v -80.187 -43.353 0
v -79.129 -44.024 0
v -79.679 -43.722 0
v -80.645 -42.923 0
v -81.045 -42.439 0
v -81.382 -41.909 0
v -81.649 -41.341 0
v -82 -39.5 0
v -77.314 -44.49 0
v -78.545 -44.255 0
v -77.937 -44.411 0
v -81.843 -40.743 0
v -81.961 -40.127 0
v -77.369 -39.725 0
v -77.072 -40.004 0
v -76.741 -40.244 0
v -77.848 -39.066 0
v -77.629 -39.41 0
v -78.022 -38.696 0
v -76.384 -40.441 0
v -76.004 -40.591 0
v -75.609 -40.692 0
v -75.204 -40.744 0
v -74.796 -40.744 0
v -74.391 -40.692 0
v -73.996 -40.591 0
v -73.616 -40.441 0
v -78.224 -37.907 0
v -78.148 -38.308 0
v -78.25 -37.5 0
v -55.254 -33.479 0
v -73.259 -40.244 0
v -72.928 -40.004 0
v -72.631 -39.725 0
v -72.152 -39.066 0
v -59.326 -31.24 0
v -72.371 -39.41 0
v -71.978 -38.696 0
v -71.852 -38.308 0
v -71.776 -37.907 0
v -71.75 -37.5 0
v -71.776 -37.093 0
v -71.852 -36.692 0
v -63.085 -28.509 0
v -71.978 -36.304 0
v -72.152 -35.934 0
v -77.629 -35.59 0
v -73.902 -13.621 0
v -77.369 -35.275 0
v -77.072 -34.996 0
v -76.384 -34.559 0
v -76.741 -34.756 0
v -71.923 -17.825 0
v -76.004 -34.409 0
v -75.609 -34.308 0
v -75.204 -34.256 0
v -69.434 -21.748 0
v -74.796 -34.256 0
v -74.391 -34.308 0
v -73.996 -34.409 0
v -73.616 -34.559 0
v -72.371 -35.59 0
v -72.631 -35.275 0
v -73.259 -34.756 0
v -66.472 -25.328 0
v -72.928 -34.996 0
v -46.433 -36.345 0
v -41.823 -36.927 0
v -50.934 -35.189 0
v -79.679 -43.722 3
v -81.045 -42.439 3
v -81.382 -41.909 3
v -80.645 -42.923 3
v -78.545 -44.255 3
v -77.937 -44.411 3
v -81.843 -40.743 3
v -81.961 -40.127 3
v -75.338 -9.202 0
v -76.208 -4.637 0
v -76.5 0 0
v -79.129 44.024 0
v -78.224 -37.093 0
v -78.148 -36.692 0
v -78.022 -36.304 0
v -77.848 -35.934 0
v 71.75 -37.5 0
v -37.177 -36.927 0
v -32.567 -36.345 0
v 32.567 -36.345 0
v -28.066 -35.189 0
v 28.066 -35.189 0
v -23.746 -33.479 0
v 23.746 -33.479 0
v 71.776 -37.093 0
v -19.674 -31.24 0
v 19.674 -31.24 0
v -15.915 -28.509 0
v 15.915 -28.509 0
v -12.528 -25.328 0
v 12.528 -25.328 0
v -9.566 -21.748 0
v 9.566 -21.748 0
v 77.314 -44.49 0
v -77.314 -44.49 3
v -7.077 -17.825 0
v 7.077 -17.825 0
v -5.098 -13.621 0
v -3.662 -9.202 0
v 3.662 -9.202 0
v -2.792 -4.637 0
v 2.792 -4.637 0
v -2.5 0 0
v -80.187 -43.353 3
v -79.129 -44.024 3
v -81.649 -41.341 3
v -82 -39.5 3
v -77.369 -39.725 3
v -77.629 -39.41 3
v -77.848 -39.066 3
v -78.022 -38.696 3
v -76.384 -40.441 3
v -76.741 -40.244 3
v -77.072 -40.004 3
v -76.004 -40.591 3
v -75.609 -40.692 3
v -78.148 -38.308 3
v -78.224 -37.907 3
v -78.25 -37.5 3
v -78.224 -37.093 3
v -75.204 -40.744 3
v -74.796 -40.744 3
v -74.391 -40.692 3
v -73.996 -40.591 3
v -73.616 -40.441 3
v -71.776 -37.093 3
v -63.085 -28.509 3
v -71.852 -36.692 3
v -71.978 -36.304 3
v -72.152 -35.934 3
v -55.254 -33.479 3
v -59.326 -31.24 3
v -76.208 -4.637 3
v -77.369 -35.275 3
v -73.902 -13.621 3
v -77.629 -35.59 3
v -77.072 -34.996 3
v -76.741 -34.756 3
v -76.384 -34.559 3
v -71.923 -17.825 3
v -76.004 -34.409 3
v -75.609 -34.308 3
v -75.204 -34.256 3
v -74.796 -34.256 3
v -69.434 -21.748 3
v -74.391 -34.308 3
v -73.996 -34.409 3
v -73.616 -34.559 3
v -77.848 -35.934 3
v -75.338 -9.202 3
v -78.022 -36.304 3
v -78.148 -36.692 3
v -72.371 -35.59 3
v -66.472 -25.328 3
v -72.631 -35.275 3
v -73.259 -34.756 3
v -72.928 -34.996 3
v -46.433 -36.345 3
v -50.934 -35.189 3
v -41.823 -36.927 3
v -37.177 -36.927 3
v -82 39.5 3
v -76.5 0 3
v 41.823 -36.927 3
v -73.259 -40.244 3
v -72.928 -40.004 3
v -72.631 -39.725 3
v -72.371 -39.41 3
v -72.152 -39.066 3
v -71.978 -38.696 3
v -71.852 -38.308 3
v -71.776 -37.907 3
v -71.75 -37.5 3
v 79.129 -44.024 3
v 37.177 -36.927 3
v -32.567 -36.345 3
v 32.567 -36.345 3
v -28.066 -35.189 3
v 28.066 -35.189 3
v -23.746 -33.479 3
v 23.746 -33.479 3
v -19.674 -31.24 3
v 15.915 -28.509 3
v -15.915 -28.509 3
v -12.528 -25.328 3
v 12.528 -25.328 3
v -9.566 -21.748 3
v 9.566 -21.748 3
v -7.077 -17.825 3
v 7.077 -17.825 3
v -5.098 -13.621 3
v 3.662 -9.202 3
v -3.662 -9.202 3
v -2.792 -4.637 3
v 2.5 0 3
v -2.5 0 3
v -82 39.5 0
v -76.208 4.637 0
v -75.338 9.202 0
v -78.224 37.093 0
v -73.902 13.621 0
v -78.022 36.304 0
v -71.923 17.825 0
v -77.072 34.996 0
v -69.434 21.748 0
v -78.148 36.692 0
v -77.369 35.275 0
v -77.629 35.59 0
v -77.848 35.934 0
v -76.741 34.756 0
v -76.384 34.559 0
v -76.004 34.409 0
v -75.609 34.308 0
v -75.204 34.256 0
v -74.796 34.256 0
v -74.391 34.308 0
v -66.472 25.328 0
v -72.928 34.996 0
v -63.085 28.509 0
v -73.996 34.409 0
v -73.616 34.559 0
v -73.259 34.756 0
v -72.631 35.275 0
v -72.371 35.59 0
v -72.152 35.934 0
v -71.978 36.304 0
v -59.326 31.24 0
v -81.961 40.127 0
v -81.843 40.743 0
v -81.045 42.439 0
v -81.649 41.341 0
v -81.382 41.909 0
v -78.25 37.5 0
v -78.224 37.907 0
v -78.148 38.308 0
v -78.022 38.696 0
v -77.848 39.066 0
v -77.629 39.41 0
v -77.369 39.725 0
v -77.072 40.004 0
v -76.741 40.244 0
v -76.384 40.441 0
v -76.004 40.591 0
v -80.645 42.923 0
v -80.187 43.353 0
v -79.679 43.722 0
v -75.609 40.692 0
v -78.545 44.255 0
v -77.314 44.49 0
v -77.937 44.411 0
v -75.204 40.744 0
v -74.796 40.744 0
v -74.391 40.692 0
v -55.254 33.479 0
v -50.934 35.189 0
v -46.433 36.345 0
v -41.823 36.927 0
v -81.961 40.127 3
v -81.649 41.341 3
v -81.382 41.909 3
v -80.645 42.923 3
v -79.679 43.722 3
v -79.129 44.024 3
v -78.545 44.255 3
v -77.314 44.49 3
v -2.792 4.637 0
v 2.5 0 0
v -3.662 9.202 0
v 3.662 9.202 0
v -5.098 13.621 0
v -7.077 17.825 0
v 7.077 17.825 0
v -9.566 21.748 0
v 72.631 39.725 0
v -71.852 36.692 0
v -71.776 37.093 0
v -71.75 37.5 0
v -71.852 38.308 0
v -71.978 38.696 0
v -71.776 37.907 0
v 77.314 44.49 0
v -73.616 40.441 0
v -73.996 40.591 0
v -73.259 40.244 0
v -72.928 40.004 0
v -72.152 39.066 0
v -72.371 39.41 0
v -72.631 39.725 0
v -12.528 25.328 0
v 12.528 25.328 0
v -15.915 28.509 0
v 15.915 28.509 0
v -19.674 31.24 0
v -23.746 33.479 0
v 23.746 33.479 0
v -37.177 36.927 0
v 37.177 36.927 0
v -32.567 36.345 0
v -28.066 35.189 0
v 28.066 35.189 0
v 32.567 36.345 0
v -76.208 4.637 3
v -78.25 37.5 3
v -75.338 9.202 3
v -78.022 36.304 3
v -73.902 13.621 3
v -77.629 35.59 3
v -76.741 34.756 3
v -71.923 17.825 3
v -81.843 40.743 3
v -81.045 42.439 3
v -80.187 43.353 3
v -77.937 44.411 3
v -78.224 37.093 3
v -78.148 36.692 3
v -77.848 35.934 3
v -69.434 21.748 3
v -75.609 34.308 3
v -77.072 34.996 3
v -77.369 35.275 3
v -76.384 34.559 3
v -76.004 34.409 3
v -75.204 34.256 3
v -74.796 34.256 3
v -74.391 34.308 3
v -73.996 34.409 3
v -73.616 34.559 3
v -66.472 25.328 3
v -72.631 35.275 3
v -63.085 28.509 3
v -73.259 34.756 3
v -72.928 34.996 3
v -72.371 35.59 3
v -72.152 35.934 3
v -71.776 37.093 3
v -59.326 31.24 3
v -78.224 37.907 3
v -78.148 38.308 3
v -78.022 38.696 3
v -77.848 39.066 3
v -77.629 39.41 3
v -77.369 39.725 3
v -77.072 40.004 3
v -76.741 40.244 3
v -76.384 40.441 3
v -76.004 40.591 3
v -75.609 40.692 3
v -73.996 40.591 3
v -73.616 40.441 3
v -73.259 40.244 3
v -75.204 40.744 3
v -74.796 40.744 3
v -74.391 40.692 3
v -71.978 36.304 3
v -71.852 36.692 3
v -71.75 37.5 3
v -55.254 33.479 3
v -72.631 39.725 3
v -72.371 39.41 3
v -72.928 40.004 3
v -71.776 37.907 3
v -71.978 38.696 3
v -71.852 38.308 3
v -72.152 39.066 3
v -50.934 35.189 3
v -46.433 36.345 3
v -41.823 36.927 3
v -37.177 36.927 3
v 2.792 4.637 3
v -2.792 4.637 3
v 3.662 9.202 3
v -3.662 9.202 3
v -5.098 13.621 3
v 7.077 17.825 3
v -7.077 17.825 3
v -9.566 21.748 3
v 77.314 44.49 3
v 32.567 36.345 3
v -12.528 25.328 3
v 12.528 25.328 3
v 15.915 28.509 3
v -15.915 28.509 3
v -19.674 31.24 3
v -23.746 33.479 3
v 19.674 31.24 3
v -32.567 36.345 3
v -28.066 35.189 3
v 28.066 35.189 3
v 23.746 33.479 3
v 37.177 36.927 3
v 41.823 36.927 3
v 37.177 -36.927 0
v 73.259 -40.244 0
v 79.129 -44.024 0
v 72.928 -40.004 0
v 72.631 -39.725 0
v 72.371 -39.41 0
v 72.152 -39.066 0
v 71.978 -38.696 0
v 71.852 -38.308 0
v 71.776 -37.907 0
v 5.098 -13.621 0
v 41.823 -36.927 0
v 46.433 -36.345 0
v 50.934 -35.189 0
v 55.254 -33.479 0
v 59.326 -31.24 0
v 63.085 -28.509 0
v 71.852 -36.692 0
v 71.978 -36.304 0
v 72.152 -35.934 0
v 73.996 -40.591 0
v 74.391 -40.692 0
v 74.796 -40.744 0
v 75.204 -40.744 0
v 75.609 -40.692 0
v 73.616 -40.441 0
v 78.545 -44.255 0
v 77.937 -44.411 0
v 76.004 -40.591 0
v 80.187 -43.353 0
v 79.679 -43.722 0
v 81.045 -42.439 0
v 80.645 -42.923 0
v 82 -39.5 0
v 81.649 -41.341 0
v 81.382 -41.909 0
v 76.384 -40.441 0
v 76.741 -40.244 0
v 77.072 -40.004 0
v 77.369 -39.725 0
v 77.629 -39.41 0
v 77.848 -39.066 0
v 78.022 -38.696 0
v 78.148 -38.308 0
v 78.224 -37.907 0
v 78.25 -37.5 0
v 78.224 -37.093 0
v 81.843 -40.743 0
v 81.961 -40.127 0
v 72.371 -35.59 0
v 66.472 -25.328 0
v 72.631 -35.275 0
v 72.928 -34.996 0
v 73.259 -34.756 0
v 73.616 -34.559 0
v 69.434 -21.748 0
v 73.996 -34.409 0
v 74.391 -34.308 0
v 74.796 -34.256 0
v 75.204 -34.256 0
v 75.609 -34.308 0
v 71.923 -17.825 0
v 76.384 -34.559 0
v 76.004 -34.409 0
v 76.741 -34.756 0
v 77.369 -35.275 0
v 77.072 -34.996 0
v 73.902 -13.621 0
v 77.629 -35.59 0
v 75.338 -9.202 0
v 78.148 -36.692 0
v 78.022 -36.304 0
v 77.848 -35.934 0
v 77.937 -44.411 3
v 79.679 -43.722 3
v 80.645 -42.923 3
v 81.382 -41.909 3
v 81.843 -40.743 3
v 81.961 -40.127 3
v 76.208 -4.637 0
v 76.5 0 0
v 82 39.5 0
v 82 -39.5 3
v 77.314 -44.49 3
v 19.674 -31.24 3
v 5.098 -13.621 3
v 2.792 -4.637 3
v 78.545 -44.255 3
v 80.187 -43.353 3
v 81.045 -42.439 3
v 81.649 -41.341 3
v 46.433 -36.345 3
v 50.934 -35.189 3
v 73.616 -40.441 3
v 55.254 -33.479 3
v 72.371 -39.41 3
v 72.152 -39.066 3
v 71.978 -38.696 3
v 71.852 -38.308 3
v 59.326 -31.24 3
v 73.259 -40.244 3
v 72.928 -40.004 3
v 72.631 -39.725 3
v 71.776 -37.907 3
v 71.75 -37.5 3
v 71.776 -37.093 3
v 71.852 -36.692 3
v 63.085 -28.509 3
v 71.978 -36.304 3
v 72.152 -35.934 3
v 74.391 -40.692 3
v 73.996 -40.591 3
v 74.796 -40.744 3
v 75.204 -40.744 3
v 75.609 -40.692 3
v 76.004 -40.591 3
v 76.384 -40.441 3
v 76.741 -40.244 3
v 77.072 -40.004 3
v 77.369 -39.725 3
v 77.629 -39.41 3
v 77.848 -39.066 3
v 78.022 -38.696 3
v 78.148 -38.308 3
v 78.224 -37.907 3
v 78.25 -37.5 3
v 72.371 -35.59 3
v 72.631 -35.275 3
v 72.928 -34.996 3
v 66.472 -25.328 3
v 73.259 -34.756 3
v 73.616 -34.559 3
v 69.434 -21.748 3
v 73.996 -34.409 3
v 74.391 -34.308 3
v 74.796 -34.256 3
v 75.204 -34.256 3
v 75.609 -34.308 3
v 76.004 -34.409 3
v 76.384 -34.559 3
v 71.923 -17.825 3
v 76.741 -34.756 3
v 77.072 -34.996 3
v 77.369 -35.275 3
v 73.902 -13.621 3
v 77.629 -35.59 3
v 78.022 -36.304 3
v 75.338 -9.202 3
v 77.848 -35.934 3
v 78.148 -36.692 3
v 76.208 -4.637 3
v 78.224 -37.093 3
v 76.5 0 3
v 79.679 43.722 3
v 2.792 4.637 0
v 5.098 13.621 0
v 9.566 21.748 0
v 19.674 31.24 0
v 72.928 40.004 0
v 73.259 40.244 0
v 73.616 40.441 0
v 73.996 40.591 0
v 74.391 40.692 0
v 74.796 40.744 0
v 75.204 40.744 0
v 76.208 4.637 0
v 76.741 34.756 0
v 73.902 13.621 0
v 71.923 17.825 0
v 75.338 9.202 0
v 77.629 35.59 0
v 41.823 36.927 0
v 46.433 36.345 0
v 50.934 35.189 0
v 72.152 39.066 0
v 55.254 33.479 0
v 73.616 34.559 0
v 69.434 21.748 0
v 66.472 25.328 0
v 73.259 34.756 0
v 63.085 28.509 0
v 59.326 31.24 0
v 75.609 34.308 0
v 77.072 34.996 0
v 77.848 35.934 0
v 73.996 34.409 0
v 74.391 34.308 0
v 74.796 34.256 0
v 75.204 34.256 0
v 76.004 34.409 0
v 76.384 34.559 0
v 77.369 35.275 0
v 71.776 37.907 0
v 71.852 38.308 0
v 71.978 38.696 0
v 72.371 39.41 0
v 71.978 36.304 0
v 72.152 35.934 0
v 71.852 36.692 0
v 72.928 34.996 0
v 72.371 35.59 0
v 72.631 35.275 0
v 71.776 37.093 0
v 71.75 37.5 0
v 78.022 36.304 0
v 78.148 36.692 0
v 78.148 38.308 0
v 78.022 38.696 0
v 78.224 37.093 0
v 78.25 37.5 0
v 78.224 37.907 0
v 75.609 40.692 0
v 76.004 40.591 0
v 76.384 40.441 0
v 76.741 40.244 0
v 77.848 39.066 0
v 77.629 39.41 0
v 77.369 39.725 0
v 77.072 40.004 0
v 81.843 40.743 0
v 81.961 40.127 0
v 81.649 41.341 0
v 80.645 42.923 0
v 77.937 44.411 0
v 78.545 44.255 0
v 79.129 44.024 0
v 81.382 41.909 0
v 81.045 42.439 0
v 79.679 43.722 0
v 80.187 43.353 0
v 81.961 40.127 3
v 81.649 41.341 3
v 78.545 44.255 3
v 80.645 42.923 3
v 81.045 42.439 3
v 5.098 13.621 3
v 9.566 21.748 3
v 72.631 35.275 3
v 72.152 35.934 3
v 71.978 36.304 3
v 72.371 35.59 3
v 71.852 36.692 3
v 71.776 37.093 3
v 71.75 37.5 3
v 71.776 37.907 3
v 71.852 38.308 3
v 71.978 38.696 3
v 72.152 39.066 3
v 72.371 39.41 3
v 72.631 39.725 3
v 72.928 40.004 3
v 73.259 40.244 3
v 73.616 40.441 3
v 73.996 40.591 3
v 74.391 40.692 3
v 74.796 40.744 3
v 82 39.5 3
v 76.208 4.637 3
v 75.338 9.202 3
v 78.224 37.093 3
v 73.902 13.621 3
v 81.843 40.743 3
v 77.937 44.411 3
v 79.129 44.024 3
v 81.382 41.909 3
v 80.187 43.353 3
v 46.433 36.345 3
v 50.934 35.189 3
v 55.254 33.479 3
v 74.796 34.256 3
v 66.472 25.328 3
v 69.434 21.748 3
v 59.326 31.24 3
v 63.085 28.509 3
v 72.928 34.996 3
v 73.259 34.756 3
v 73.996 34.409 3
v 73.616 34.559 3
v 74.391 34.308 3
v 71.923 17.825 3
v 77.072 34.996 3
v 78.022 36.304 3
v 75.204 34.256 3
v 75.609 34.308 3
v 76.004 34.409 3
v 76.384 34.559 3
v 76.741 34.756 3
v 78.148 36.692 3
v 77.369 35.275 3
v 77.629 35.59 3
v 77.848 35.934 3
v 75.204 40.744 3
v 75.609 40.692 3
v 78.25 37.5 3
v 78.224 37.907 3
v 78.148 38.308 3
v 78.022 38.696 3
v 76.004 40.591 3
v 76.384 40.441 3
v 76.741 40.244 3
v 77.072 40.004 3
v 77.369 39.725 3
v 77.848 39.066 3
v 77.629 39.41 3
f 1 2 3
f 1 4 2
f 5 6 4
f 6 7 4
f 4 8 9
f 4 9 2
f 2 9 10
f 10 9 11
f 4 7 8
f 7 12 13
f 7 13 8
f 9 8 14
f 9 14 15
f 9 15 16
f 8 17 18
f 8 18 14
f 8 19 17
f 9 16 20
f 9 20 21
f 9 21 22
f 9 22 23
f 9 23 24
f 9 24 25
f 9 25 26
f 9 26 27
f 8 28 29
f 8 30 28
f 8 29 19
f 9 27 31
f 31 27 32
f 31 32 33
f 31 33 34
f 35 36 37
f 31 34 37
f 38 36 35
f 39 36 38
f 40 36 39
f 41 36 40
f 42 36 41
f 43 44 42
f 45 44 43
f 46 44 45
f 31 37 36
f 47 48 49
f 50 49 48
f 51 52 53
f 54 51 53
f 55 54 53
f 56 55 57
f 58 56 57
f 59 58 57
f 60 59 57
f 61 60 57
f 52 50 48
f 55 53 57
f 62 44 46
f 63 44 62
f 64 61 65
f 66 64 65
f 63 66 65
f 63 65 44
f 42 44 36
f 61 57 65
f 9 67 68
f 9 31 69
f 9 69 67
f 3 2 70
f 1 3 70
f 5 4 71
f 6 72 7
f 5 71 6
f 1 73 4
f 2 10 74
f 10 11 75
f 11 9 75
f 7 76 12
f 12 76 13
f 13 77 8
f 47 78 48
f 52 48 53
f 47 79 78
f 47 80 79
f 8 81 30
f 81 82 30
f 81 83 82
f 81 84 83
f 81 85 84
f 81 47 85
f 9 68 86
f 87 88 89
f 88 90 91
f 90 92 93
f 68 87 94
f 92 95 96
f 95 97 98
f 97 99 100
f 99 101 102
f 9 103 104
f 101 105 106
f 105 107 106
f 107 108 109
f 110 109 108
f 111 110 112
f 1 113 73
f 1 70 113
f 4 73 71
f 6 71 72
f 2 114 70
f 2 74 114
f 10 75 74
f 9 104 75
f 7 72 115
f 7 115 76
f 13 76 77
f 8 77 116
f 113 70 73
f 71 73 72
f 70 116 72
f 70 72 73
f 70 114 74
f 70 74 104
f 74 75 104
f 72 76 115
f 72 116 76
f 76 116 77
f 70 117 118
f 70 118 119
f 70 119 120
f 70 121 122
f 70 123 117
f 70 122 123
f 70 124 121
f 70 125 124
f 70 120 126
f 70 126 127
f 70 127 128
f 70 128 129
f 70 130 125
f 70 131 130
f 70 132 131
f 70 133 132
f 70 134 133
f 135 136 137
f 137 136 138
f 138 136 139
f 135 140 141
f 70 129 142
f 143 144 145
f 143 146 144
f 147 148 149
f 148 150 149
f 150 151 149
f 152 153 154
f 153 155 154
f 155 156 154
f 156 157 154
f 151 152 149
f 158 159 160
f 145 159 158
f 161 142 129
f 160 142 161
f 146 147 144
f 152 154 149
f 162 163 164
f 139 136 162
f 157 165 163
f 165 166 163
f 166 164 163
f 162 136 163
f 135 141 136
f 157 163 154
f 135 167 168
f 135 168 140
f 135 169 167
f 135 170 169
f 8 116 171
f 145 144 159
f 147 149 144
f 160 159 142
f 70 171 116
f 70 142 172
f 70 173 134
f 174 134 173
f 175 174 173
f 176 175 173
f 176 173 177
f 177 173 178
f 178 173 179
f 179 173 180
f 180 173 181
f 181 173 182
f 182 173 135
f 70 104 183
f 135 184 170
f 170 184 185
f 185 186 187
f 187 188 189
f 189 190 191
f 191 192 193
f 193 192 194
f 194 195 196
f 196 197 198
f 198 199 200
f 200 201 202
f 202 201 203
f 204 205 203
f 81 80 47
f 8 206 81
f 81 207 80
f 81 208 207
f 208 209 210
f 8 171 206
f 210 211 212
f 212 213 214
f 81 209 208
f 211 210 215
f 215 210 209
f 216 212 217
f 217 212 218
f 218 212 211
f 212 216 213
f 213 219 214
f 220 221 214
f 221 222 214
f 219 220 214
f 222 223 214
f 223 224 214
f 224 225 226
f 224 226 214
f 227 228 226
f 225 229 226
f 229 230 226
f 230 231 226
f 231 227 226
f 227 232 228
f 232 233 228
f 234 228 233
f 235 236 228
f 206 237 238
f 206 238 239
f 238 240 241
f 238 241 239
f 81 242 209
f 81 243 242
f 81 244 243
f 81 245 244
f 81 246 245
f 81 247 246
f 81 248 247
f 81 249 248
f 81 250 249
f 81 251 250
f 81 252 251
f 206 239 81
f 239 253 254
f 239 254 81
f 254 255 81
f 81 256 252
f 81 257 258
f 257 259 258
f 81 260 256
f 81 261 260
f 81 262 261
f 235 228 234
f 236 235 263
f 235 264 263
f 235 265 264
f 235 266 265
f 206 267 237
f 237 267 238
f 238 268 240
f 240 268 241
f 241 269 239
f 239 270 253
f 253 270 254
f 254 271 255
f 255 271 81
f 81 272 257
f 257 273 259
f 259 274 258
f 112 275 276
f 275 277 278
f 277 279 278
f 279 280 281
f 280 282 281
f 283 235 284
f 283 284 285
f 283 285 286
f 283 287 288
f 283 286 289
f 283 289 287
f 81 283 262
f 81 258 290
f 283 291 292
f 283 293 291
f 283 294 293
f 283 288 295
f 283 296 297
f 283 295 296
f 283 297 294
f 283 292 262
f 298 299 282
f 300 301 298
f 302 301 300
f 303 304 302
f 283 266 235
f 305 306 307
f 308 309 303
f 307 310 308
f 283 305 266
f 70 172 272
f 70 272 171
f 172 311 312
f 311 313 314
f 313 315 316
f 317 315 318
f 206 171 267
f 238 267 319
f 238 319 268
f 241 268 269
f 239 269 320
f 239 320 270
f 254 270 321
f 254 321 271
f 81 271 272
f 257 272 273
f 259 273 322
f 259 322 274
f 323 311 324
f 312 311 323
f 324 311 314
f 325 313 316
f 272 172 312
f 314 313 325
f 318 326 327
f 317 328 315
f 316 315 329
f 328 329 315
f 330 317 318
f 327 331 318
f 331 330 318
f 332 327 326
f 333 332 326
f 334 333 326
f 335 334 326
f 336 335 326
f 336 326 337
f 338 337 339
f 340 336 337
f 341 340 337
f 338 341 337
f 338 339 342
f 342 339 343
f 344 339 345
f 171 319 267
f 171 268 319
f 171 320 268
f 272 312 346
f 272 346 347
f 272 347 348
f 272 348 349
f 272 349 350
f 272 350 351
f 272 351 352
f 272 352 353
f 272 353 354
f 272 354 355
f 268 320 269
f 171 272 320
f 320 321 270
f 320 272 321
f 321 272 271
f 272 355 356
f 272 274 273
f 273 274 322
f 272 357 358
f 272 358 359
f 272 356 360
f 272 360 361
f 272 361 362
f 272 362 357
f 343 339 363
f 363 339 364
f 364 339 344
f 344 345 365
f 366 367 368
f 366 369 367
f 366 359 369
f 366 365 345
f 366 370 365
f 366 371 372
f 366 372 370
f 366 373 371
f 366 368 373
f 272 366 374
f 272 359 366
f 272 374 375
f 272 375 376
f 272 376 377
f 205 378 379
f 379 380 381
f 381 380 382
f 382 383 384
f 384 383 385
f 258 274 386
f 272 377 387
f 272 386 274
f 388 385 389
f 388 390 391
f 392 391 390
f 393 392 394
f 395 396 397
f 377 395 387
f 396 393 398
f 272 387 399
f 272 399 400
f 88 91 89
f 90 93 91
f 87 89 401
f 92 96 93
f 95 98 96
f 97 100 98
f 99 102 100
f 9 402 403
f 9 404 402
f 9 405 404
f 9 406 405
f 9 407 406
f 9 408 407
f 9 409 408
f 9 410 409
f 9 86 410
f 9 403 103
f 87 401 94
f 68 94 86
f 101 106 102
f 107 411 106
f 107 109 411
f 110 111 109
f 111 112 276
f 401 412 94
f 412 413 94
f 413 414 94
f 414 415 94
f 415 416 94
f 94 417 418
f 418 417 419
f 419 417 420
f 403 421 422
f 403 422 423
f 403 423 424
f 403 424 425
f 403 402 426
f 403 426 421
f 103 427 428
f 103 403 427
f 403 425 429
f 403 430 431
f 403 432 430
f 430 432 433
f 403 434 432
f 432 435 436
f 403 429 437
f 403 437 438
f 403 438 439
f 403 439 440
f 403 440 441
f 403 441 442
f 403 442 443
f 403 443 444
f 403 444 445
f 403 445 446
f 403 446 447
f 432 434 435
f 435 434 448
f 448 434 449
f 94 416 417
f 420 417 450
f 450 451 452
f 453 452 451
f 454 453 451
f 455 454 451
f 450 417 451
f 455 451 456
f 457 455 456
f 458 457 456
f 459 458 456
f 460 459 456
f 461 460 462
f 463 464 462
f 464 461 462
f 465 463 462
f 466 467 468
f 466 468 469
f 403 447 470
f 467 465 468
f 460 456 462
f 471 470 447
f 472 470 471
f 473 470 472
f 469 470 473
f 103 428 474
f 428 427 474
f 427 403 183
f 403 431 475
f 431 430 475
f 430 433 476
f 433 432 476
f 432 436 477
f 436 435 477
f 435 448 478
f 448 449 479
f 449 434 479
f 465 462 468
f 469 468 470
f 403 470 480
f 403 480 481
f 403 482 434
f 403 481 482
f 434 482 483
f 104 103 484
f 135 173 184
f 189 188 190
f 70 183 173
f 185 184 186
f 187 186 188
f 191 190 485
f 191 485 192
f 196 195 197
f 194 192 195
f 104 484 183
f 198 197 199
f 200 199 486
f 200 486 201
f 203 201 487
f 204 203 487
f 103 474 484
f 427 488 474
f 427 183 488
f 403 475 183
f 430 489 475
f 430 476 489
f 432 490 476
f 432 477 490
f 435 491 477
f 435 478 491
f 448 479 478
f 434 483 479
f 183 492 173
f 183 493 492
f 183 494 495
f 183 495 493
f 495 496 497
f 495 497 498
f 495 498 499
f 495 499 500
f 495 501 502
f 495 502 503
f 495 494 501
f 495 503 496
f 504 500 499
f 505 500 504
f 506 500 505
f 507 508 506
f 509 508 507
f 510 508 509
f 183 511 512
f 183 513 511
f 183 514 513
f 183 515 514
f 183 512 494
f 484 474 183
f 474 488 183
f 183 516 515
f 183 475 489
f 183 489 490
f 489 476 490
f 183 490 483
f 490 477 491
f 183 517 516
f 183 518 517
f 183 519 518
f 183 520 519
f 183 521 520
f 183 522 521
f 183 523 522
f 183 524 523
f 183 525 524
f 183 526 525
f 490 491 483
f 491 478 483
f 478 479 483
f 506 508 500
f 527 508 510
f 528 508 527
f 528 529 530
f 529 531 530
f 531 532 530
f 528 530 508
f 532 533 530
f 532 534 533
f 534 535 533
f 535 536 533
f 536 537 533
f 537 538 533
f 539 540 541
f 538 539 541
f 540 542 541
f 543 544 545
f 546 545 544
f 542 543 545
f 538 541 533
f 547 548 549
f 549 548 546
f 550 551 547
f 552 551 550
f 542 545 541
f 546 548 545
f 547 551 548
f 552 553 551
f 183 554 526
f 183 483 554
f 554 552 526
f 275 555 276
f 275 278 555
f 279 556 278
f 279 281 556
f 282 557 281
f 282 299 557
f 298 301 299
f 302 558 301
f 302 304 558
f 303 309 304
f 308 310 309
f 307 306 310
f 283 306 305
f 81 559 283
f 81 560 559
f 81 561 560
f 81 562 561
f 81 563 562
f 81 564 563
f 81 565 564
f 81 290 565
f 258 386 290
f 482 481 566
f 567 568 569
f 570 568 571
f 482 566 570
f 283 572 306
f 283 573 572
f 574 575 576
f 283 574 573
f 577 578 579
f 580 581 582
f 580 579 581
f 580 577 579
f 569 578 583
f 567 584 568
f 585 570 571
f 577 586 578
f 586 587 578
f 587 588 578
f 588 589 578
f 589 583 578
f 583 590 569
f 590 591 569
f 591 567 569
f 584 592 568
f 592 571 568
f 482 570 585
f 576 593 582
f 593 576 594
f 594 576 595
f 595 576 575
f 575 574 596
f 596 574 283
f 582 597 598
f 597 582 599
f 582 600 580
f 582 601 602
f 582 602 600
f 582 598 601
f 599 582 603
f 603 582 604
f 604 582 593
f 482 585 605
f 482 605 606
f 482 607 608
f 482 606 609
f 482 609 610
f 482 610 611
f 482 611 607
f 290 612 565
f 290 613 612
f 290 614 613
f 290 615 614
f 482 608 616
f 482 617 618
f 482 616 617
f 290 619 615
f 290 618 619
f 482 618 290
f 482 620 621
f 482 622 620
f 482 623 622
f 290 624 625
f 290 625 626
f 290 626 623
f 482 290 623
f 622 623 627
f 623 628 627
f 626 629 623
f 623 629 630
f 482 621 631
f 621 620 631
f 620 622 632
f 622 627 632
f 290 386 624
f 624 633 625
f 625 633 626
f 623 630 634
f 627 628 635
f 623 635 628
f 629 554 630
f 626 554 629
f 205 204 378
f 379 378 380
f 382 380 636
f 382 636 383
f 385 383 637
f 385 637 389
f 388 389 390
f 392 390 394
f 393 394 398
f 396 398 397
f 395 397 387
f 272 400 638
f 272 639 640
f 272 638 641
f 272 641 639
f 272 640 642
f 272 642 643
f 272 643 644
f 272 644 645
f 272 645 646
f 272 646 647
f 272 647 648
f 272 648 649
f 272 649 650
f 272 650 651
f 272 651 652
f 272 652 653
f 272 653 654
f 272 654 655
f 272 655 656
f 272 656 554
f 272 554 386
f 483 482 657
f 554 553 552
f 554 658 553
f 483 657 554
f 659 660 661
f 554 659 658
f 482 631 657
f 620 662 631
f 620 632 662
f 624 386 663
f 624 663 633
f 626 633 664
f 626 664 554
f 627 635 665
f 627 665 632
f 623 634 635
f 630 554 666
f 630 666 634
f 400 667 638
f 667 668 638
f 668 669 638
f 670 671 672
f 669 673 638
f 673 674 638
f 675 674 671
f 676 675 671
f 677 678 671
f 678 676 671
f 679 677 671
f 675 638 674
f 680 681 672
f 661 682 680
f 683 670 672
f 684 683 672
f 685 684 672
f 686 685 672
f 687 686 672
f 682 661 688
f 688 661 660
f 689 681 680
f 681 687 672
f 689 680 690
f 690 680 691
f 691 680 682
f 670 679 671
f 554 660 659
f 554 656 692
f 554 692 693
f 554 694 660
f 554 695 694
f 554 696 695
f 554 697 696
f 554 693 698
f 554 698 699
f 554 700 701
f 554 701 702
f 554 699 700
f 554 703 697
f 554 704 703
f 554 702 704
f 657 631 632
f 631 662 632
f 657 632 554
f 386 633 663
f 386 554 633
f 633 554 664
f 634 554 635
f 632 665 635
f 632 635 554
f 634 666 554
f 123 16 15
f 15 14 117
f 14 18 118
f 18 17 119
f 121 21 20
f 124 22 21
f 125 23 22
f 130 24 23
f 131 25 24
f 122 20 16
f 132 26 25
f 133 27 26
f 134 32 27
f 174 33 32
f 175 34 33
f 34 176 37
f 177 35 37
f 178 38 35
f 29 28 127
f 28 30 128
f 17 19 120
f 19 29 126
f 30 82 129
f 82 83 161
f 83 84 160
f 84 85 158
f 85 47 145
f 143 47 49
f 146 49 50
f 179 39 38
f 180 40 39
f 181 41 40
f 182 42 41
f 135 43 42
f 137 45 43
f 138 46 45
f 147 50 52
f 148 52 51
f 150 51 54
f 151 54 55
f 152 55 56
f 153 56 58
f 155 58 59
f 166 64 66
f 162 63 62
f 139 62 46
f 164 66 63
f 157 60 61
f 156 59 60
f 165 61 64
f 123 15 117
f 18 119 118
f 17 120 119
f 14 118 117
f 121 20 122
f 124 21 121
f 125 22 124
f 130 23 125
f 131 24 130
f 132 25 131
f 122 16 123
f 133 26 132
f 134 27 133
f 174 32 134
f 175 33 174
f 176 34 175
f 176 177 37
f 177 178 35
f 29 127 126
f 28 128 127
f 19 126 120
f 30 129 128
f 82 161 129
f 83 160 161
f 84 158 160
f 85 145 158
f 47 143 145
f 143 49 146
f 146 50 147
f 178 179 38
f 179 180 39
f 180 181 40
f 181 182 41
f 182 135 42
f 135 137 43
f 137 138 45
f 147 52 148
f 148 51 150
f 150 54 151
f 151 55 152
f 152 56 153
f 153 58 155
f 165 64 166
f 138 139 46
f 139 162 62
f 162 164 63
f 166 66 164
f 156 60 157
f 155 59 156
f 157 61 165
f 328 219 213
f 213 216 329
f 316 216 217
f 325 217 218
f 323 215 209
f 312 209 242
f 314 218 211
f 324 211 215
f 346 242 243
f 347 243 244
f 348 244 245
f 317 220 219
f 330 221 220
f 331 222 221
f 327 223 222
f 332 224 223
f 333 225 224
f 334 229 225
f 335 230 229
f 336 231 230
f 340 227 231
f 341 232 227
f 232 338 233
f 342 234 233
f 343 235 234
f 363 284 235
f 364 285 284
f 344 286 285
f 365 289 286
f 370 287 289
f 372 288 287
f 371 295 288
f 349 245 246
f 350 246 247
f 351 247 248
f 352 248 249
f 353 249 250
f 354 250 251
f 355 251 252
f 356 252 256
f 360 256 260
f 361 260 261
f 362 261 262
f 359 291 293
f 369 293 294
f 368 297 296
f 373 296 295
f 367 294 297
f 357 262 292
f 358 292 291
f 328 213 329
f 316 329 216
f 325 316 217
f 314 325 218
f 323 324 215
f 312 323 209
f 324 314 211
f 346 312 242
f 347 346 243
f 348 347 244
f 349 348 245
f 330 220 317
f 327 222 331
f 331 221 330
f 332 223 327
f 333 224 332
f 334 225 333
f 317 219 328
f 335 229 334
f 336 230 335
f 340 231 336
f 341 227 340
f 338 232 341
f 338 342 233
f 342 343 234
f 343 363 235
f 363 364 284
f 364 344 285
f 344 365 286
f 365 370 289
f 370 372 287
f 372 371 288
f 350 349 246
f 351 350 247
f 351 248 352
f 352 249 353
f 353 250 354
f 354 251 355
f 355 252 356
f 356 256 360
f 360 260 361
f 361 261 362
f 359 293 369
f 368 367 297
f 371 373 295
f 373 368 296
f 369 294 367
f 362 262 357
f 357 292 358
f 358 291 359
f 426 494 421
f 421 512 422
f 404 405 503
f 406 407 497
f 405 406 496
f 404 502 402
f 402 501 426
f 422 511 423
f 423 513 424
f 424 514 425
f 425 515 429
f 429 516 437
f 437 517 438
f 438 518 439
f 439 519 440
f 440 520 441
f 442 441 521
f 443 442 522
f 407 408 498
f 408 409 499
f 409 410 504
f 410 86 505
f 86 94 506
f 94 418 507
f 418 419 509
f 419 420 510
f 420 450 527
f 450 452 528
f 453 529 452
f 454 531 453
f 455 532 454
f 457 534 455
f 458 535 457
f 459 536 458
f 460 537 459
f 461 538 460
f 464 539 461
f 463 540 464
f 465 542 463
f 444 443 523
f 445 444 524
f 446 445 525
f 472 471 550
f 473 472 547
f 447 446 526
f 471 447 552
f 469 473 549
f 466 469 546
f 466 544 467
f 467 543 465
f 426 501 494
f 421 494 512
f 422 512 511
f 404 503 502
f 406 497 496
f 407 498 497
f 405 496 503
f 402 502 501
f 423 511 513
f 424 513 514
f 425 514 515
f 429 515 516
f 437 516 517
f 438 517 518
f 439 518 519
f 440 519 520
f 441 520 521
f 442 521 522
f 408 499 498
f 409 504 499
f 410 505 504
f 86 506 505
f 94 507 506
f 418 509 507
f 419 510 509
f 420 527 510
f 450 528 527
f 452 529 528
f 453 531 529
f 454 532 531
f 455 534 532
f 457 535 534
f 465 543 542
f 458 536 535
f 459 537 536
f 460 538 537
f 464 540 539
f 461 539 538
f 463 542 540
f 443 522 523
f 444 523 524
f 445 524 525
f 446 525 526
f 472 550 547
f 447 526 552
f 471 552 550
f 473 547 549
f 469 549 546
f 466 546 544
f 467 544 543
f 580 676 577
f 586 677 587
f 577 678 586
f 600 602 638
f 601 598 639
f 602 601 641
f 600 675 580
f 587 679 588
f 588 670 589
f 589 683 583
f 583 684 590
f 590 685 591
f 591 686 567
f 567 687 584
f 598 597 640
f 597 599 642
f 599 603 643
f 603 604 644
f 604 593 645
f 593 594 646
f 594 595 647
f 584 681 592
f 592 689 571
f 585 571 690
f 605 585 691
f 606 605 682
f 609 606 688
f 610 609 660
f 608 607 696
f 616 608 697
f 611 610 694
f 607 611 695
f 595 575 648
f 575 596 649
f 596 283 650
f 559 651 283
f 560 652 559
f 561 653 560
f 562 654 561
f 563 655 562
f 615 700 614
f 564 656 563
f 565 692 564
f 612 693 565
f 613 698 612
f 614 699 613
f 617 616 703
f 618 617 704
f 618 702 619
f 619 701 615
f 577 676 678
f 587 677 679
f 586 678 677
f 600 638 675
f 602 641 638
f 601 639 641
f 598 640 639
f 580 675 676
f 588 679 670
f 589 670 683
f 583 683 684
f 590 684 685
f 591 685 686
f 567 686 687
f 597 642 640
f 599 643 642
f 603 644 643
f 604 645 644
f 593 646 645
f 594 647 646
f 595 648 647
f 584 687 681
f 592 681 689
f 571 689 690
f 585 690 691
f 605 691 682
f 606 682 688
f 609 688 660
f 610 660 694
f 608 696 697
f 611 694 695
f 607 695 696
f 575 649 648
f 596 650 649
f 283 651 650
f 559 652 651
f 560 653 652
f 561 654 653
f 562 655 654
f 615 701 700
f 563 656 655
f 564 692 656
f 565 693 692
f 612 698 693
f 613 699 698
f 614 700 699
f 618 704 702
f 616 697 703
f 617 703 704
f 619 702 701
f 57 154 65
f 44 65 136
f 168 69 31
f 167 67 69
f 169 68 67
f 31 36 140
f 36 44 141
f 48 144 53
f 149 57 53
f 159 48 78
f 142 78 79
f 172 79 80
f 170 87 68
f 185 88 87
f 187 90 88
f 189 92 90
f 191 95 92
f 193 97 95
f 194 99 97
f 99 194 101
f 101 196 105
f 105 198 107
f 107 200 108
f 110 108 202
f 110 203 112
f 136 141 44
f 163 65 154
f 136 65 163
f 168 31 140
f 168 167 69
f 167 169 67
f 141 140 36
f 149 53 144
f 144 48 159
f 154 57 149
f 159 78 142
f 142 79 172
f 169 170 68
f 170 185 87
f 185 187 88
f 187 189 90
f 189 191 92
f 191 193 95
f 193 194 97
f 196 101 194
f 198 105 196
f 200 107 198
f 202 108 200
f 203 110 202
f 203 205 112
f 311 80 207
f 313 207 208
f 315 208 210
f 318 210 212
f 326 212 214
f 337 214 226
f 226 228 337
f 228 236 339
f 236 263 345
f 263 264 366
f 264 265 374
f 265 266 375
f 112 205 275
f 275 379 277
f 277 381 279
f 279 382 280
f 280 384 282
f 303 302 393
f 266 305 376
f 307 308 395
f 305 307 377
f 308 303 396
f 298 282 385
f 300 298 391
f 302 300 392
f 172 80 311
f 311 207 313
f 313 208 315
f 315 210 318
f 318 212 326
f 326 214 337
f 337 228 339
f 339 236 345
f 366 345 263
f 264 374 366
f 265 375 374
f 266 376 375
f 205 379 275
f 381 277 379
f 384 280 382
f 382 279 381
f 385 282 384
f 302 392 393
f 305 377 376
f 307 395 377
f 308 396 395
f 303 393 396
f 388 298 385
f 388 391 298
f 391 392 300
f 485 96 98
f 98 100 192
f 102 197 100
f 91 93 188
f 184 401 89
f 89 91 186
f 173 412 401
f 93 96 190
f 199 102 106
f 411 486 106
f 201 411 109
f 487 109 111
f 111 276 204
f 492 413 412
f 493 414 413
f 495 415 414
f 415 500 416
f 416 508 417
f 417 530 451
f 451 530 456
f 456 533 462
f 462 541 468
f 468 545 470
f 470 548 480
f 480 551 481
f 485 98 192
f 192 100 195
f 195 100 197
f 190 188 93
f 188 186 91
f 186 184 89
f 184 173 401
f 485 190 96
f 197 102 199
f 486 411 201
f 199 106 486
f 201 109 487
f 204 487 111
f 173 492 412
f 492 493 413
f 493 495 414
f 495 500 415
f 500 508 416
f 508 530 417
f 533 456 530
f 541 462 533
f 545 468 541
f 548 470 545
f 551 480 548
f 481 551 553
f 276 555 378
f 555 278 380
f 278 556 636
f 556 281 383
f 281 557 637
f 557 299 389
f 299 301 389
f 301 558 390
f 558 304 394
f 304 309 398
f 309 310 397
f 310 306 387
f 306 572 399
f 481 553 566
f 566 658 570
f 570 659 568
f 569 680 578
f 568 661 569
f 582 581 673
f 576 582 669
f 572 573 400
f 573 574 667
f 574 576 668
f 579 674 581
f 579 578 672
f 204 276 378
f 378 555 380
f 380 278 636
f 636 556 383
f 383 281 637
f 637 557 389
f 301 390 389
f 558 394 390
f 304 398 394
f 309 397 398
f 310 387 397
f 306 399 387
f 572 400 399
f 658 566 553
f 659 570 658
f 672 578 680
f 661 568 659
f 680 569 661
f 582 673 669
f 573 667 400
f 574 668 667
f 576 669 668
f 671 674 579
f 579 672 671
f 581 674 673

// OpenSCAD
$fn = 50;

difference() {
	union() {
		hull() {
			translate(v = [-77.0, 39.5, 0]) {
				cylinder(h = 3, r = 5);
			}
			translate(v = [77.0, 39.5, 0]) {
				cylinder(h = 3, r = 5);
			}
			translate(v = [-77.0, -39.5, 0]) {
				cylinder(h = 3, r = 5);
			}
			translate(v = [77.0, -39.5, 0]) {
				cylinder(h = 3, r = 5);
			}
		}
	}
	union() {
		translate(v = [-75.0, -37.5, -100.0]) {
			cylinder(h = 200, r = 3.25);
		}
		translate(v = [-75.0, 37.5, -100.0]) {
			cylinder(h = 200, r = 3.25);
		}
		translate(v = [75.0, -37.5, -100.0]) {
			cylinder(h = 200, r = 3.25);
		}
		translate(v = [75.0, 37.5, -100.0]) {
			cylinder(h = 200, r = 3.25);
		}
		translate(v = [-75.0, -37.5, -100.0]) {
			cylinder(h = 200, r = 1.8);
		}
		translate(v = [-75.0, 37.5, -100.0]) {
			cylinder(h = 200, r = 1.8);
		}
		translate(v = [75.0, -37.5, -100.0]) {
			cylinder(h = 200, r = 1.8);
		}
		translate(v = [75.0, 37.5, -100.0]) {
			cylinder(h = 200, r = 1.8);
		}
		translate(v = [-39.5, 0, 0.0]) {
			cylinder(h = 3, r = 37.0);
		}
		translate(v = [39.5, 0, 0.0]) {
			cylinder(h = 3, r = 37.0);
		}
	}
}
